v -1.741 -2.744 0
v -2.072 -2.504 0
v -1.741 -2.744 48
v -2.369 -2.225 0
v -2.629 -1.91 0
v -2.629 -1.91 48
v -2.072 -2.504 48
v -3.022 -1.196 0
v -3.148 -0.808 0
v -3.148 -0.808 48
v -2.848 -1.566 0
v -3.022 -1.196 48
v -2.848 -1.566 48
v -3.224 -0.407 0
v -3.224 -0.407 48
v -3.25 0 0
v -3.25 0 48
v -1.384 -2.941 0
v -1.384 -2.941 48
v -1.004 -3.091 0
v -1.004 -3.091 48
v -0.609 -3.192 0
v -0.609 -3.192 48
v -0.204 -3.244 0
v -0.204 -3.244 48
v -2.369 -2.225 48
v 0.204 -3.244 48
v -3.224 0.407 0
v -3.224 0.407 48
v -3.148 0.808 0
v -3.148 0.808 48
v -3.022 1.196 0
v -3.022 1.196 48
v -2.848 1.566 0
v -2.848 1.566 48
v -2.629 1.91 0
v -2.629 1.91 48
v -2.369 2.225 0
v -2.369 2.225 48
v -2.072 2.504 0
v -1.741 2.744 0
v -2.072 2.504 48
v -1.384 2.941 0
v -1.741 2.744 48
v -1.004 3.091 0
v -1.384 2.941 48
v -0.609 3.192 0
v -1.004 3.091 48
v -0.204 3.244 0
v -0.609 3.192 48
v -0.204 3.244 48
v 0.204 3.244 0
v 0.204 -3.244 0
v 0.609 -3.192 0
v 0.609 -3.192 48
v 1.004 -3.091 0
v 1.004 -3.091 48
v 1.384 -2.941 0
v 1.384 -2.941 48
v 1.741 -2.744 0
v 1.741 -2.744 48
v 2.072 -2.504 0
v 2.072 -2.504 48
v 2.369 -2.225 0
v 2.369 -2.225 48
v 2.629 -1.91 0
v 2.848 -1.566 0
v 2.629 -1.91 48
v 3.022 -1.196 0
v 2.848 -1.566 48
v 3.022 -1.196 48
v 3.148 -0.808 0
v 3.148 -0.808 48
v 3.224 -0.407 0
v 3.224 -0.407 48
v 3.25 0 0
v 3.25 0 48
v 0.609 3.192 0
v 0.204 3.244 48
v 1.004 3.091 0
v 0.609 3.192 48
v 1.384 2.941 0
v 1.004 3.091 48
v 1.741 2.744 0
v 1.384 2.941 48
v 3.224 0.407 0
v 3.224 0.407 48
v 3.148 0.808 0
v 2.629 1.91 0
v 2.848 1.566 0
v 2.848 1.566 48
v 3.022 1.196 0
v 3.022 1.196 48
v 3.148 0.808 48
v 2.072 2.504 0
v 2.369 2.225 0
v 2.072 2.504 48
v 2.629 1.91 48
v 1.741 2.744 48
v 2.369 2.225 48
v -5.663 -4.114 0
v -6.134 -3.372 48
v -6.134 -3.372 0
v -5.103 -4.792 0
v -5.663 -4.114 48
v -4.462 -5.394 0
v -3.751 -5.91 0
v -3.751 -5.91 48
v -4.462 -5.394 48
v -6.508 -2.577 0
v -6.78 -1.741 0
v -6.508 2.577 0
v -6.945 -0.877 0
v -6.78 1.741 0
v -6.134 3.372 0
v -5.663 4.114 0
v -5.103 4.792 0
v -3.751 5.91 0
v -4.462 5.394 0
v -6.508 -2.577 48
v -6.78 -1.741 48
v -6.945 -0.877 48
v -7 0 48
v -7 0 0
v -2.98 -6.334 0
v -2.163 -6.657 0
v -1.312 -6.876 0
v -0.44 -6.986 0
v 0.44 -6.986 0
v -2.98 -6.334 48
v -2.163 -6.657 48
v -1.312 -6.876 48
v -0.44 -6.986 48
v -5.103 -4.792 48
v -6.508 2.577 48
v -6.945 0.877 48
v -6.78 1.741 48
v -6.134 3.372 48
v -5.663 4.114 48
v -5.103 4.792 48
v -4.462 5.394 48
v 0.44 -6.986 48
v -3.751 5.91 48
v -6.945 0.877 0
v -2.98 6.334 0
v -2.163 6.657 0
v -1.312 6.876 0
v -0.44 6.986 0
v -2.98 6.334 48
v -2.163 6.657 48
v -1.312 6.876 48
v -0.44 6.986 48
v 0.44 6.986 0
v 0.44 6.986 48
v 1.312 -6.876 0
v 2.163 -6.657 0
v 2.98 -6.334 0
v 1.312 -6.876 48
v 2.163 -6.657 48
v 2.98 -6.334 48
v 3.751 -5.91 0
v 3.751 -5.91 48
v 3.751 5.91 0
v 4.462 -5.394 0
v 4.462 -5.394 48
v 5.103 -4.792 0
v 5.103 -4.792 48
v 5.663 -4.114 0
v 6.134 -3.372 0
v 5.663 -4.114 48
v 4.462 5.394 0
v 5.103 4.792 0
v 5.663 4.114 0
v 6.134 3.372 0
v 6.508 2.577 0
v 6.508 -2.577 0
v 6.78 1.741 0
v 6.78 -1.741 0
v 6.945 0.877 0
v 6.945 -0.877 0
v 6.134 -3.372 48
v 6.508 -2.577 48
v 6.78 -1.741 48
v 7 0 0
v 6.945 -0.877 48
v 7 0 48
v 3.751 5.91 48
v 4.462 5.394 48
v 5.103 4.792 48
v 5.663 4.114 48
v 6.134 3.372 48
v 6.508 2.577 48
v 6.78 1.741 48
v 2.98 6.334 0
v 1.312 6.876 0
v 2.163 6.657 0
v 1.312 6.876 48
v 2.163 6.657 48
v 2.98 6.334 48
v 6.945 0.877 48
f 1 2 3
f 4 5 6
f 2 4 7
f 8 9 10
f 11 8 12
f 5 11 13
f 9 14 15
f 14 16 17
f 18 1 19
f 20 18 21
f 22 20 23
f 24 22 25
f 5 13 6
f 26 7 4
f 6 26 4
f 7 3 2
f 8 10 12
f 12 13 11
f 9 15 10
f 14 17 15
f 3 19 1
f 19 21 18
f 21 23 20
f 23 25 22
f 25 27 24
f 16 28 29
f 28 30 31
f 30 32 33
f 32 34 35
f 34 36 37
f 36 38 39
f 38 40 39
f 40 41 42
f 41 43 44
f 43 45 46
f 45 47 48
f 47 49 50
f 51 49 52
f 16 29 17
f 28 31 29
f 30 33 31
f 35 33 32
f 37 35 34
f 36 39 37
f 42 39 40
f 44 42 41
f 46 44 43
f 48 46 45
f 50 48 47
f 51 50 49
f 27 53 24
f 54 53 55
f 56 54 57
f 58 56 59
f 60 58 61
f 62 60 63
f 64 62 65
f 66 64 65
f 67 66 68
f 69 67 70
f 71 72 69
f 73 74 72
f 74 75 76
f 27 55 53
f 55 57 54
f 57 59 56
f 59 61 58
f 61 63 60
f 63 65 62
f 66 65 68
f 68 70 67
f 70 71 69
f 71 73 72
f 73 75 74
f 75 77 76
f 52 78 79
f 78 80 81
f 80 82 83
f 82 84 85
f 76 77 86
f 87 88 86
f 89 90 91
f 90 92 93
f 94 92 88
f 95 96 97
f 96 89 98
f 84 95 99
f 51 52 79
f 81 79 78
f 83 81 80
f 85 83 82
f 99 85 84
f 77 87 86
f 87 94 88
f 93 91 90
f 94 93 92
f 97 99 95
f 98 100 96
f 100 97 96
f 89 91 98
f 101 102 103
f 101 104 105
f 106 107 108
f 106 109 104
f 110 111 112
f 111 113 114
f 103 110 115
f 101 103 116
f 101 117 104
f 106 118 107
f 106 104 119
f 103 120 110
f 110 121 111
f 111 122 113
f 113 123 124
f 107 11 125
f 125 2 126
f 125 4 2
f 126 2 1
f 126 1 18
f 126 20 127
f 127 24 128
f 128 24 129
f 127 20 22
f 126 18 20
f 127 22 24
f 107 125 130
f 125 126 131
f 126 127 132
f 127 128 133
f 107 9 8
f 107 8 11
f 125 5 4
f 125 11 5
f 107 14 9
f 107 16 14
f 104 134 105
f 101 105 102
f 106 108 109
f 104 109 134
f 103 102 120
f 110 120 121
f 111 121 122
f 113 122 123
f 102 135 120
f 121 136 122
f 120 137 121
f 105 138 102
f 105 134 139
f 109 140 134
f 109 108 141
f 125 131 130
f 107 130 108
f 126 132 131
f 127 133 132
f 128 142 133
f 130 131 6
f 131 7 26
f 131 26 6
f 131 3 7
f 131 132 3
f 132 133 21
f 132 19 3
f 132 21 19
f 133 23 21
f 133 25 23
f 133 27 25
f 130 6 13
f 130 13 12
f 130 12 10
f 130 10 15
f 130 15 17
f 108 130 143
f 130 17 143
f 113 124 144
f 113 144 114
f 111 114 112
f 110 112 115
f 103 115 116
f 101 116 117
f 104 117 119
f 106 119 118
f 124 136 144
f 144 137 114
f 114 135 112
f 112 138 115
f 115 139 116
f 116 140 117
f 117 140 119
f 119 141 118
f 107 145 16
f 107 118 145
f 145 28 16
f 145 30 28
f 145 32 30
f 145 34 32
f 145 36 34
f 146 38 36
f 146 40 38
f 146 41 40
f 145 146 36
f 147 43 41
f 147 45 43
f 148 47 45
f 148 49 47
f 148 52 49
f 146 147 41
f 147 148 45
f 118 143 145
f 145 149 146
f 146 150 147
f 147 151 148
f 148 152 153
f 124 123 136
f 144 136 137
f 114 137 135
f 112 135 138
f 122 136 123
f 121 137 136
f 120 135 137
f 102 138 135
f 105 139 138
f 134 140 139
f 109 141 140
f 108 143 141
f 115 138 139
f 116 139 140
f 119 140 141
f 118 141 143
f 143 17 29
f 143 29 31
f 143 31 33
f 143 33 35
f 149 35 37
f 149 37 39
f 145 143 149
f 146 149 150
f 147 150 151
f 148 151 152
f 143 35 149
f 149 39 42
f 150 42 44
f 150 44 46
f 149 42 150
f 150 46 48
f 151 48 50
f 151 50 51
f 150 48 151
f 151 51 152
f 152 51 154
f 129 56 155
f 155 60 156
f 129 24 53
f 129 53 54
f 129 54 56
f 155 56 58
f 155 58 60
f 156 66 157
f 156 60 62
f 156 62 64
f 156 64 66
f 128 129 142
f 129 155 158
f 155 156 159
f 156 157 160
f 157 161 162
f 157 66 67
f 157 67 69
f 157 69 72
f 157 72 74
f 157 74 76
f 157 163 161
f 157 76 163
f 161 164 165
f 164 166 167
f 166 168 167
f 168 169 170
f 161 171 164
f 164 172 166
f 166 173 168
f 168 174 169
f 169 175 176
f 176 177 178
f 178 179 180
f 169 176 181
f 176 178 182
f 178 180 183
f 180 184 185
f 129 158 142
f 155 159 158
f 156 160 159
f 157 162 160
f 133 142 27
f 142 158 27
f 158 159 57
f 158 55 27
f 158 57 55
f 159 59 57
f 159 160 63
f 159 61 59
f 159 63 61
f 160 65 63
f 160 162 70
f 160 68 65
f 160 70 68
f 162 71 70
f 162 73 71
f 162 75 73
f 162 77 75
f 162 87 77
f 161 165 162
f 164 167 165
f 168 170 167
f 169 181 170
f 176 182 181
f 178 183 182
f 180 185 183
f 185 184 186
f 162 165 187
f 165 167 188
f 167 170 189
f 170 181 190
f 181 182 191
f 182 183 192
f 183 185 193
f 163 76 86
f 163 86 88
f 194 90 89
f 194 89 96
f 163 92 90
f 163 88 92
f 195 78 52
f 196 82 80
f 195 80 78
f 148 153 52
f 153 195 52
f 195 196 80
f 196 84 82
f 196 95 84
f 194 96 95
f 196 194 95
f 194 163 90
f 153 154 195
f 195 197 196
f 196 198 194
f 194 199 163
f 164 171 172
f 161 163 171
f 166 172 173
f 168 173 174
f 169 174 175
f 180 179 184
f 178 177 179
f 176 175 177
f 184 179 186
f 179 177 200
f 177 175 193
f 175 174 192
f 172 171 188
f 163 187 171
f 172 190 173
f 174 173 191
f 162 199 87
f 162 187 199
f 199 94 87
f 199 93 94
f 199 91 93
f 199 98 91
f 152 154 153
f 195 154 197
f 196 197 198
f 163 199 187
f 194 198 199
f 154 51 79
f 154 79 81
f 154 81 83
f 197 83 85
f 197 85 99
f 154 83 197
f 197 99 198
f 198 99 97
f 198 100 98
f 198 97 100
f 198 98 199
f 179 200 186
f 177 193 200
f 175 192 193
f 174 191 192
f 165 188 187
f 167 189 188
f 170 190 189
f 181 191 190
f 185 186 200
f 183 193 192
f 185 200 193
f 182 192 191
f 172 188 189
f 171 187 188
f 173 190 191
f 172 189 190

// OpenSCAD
$fn = 50;

difference() {
	union() {
		cylinder(h = 48, r = 7.0);
	}
	union() {
		cylinder(h = 48, r = 3.25);
		cylinder(h = 48, r = 1.8);
	}
}
